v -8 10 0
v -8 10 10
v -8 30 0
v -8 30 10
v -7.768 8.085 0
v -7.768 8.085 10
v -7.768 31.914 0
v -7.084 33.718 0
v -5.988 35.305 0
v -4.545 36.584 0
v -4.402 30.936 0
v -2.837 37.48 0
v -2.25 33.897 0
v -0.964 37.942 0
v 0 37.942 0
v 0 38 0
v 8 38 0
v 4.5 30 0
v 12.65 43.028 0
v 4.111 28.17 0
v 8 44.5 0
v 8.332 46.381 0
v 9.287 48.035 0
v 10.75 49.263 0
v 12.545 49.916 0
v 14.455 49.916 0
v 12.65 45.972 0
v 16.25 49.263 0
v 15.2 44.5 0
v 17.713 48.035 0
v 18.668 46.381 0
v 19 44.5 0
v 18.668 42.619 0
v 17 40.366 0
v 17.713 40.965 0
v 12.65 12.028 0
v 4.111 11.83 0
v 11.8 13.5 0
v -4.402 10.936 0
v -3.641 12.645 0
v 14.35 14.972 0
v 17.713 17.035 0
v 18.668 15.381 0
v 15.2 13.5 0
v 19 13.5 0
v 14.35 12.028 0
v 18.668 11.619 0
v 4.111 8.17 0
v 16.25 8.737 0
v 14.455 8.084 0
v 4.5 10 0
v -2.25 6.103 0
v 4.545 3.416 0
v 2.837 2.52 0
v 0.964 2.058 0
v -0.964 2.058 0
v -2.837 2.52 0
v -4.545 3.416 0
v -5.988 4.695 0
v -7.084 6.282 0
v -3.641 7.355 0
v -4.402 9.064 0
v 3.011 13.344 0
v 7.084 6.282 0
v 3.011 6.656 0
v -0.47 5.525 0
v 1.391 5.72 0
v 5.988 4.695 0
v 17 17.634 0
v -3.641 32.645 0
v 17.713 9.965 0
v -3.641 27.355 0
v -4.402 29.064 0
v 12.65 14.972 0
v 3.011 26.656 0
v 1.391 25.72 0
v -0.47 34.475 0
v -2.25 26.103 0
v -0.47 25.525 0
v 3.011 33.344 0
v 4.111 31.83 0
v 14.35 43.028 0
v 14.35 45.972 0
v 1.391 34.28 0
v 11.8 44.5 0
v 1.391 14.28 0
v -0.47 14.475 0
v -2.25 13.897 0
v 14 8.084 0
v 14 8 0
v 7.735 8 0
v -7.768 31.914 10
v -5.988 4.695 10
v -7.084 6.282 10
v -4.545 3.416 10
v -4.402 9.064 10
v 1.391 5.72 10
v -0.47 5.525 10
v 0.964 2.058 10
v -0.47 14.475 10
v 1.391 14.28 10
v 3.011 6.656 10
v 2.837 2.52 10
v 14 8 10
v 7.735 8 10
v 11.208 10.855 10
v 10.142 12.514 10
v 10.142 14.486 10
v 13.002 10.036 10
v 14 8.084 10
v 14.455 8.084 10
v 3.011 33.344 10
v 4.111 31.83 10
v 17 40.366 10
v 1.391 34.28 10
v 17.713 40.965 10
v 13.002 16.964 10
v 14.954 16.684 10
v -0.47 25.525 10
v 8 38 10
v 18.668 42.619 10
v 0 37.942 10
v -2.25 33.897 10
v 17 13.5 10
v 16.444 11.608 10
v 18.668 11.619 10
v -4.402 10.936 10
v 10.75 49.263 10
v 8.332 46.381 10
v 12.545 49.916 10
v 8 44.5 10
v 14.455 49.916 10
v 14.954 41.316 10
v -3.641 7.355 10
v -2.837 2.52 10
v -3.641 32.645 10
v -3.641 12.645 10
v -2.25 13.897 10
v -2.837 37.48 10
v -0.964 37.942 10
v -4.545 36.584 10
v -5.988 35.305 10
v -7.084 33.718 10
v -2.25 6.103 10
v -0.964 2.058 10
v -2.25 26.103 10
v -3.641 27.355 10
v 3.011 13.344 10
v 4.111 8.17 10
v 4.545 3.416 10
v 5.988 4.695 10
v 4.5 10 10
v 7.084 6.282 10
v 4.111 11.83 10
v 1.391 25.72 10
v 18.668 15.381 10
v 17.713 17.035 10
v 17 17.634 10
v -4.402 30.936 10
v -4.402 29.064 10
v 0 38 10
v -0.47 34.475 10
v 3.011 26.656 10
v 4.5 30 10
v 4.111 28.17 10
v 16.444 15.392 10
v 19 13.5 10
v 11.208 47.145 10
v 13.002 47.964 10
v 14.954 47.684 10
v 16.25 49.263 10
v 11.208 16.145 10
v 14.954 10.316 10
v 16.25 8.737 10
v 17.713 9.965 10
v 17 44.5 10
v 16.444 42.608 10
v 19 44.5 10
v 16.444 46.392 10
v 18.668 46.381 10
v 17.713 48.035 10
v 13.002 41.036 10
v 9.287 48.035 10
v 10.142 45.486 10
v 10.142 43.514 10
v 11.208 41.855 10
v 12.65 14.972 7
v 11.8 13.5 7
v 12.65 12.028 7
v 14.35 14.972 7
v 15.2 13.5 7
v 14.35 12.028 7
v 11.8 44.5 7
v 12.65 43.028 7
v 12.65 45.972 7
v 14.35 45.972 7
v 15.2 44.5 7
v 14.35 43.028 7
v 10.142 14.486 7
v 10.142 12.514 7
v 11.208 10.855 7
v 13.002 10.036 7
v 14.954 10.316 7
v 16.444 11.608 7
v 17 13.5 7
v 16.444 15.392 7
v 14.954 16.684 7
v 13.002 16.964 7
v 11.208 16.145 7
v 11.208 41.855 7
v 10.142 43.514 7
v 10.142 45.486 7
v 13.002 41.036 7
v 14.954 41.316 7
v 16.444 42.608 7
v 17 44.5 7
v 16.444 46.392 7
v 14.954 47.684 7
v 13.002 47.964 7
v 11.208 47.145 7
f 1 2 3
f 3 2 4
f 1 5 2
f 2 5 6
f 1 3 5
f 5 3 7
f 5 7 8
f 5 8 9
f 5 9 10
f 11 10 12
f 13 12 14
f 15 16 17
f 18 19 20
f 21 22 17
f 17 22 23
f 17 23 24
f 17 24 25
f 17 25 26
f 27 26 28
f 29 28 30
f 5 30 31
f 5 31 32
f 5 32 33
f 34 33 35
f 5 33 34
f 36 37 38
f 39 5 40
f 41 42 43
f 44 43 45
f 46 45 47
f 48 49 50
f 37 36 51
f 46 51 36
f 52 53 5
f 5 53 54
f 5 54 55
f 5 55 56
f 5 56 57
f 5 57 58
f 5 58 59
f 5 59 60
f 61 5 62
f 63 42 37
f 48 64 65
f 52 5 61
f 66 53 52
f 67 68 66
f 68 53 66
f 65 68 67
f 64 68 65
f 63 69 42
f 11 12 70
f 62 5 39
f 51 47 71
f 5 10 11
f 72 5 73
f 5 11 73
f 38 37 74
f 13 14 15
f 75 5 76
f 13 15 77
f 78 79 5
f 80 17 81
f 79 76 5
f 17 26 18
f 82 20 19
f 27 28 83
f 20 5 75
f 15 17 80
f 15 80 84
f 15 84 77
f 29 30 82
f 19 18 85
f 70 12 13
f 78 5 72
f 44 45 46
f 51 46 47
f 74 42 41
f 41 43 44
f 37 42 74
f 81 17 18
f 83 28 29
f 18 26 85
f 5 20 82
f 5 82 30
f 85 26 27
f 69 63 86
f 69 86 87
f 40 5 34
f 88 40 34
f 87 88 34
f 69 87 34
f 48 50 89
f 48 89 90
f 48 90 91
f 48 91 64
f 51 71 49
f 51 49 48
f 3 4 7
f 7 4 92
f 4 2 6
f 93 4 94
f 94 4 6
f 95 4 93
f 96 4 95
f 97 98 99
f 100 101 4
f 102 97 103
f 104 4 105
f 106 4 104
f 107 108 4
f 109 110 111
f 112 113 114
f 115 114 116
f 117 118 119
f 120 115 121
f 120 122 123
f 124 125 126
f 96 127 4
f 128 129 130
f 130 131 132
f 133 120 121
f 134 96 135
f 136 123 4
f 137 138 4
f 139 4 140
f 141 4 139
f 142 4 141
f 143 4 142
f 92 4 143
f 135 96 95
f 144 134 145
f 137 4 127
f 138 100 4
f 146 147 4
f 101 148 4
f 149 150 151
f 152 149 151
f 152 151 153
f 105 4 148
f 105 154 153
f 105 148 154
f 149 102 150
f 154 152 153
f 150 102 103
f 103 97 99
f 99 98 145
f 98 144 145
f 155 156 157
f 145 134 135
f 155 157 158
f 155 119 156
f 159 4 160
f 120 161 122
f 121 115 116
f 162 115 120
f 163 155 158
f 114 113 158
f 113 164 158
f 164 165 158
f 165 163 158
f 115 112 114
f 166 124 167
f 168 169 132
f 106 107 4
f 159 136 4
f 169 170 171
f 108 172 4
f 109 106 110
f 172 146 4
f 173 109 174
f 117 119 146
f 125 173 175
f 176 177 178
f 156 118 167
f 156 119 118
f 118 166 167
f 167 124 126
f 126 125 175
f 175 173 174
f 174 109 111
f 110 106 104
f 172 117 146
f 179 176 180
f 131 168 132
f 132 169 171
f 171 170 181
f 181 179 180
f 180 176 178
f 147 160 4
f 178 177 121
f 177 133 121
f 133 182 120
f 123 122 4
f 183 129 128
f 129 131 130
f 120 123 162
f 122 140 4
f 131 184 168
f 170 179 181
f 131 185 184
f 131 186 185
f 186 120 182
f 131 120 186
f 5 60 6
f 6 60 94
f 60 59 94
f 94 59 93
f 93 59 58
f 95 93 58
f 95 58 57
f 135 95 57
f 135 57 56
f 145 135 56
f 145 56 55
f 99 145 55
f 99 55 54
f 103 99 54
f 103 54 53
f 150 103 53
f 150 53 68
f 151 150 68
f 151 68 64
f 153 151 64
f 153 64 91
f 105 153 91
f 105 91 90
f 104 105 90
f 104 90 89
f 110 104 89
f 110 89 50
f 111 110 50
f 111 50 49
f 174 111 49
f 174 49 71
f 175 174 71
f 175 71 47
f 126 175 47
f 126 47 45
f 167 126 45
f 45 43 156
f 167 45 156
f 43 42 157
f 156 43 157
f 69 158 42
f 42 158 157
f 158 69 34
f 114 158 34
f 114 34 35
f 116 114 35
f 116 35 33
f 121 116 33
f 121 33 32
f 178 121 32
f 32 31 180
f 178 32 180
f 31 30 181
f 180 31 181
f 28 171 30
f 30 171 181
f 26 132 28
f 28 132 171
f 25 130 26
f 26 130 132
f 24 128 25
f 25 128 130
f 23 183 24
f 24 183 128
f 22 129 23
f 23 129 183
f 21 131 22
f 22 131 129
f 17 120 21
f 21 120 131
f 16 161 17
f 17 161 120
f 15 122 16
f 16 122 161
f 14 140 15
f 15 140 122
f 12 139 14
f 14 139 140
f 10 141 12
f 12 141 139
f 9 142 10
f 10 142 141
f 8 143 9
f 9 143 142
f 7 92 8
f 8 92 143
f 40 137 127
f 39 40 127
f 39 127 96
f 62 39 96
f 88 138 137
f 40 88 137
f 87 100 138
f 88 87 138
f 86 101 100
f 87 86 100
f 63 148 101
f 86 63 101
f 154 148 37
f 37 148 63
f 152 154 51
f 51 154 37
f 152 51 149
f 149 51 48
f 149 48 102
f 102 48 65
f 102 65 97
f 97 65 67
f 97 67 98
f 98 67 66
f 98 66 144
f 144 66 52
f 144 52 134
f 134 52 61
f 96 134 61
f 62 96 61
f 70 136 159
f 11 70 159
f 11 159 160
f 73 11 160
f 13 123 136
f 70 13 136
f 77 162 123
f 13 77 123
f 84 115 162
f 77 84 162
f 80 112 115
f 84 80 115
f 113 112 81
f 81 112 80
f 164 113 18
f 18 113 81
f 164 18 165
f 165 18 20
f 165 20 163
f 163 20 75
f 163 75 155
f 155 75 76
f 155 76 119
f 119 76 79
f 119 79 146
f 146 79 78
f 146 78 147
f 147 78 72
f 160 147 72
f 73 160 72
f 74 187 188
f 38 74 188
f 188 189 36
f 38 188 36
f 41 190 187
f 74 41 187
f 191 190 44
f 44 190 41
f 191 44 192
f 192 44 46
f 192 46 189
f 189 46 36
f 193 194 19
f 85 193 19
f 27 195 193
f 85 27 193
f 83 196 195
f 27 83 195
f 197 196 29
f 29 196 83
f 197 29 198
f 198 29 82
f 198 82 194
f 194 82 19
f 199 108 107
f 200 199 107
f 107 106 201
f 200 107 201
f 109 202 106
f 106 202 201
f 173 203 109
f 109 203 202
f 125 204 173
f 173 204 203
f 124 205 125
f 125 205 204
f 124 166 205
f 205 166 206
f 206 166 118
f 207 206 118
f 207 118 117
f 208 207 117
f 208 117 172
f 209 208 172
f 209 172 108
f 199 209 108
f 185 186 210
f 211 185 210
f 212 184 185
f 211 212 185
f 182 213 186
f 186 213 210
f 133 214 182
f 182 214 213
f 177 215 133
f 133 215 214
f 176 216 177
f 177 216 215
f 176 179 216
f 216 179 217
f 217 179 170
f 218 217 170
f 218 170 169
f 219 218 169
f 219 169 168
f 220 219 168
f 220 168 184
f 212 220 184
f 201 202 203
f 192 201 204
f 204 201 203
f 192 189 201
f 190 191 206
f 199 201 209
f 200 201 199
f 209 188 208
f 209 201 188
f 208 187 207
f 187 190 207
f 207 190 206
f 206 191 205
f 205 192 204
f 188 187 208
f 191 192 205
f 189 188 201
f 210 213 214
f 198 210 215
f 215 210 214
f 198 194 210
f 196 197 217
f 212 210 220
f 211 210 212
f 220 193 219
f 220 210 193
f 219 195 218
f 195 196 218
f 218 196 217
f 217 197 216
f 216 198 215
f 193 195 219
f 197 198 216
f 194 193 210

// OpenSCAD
// PRUSA iteration3
// Y motor mount
// GNU GPL v3
// Josef Průša <iam@josefprusa.cz> and contributors
// http://www.reprap.org/wiki/Prusa_Mendel
// http://prusamendel.org

//include <configuration.scad>

module y_motor_base(){
 // Motor holding part
 translate(v = [29,-21+50,0]){
  translate(v = [-21+4.5,0,5]) cube(size = [9,31,10], center=true);
  translate(v = [-15.5,-15.5,0]) cylinder(h = 10, r=5.5);
  translate(v = [-15.5,+15.5,0]) cylinder(h = 10, r=5.5);
  // Joins motor holder and rod plate
  translate(v = [-29,-21,0]) cube(size = [14,30,10]);
 }
 // Front holding part
 translate(v = [0,10,0]) cylinder(h = 10, r=8);
 translate(v = [0,20,5])cube(size = [16,20,10], center=true);	
 translate(v = [0,30,0])cylinder(h = 10, r=8);
}

module y_motor_holes(){
 translate(v = [29,-21+50,0]){
  // Screw head holes
  translate(v = [-15.5,-15.5,-1]) cylinder(h = 10, r=1.7);
  translate(v = [-15.5,+15.5,-1]) cylinder(h = 10, r=1.7);
  // Screw holes
  translate(v = [-15.5,-15.5,7]) cylinder(h = 7, r=3.5);
  translate(v = [-15.5,+15.5,7]) cylinder(h = 7, r=3.5);
 }
 translate(v = [0,10,-1]) cylinder(h = 12, r=4.5);	
 translate(v = [0,30,-1]) cylinder(h = 12, r=4.5);
}

// Final part
module y_motor(){
 difference(){
  y_motor_base();
  y_motor_holes();
 }
}

y_motor();
